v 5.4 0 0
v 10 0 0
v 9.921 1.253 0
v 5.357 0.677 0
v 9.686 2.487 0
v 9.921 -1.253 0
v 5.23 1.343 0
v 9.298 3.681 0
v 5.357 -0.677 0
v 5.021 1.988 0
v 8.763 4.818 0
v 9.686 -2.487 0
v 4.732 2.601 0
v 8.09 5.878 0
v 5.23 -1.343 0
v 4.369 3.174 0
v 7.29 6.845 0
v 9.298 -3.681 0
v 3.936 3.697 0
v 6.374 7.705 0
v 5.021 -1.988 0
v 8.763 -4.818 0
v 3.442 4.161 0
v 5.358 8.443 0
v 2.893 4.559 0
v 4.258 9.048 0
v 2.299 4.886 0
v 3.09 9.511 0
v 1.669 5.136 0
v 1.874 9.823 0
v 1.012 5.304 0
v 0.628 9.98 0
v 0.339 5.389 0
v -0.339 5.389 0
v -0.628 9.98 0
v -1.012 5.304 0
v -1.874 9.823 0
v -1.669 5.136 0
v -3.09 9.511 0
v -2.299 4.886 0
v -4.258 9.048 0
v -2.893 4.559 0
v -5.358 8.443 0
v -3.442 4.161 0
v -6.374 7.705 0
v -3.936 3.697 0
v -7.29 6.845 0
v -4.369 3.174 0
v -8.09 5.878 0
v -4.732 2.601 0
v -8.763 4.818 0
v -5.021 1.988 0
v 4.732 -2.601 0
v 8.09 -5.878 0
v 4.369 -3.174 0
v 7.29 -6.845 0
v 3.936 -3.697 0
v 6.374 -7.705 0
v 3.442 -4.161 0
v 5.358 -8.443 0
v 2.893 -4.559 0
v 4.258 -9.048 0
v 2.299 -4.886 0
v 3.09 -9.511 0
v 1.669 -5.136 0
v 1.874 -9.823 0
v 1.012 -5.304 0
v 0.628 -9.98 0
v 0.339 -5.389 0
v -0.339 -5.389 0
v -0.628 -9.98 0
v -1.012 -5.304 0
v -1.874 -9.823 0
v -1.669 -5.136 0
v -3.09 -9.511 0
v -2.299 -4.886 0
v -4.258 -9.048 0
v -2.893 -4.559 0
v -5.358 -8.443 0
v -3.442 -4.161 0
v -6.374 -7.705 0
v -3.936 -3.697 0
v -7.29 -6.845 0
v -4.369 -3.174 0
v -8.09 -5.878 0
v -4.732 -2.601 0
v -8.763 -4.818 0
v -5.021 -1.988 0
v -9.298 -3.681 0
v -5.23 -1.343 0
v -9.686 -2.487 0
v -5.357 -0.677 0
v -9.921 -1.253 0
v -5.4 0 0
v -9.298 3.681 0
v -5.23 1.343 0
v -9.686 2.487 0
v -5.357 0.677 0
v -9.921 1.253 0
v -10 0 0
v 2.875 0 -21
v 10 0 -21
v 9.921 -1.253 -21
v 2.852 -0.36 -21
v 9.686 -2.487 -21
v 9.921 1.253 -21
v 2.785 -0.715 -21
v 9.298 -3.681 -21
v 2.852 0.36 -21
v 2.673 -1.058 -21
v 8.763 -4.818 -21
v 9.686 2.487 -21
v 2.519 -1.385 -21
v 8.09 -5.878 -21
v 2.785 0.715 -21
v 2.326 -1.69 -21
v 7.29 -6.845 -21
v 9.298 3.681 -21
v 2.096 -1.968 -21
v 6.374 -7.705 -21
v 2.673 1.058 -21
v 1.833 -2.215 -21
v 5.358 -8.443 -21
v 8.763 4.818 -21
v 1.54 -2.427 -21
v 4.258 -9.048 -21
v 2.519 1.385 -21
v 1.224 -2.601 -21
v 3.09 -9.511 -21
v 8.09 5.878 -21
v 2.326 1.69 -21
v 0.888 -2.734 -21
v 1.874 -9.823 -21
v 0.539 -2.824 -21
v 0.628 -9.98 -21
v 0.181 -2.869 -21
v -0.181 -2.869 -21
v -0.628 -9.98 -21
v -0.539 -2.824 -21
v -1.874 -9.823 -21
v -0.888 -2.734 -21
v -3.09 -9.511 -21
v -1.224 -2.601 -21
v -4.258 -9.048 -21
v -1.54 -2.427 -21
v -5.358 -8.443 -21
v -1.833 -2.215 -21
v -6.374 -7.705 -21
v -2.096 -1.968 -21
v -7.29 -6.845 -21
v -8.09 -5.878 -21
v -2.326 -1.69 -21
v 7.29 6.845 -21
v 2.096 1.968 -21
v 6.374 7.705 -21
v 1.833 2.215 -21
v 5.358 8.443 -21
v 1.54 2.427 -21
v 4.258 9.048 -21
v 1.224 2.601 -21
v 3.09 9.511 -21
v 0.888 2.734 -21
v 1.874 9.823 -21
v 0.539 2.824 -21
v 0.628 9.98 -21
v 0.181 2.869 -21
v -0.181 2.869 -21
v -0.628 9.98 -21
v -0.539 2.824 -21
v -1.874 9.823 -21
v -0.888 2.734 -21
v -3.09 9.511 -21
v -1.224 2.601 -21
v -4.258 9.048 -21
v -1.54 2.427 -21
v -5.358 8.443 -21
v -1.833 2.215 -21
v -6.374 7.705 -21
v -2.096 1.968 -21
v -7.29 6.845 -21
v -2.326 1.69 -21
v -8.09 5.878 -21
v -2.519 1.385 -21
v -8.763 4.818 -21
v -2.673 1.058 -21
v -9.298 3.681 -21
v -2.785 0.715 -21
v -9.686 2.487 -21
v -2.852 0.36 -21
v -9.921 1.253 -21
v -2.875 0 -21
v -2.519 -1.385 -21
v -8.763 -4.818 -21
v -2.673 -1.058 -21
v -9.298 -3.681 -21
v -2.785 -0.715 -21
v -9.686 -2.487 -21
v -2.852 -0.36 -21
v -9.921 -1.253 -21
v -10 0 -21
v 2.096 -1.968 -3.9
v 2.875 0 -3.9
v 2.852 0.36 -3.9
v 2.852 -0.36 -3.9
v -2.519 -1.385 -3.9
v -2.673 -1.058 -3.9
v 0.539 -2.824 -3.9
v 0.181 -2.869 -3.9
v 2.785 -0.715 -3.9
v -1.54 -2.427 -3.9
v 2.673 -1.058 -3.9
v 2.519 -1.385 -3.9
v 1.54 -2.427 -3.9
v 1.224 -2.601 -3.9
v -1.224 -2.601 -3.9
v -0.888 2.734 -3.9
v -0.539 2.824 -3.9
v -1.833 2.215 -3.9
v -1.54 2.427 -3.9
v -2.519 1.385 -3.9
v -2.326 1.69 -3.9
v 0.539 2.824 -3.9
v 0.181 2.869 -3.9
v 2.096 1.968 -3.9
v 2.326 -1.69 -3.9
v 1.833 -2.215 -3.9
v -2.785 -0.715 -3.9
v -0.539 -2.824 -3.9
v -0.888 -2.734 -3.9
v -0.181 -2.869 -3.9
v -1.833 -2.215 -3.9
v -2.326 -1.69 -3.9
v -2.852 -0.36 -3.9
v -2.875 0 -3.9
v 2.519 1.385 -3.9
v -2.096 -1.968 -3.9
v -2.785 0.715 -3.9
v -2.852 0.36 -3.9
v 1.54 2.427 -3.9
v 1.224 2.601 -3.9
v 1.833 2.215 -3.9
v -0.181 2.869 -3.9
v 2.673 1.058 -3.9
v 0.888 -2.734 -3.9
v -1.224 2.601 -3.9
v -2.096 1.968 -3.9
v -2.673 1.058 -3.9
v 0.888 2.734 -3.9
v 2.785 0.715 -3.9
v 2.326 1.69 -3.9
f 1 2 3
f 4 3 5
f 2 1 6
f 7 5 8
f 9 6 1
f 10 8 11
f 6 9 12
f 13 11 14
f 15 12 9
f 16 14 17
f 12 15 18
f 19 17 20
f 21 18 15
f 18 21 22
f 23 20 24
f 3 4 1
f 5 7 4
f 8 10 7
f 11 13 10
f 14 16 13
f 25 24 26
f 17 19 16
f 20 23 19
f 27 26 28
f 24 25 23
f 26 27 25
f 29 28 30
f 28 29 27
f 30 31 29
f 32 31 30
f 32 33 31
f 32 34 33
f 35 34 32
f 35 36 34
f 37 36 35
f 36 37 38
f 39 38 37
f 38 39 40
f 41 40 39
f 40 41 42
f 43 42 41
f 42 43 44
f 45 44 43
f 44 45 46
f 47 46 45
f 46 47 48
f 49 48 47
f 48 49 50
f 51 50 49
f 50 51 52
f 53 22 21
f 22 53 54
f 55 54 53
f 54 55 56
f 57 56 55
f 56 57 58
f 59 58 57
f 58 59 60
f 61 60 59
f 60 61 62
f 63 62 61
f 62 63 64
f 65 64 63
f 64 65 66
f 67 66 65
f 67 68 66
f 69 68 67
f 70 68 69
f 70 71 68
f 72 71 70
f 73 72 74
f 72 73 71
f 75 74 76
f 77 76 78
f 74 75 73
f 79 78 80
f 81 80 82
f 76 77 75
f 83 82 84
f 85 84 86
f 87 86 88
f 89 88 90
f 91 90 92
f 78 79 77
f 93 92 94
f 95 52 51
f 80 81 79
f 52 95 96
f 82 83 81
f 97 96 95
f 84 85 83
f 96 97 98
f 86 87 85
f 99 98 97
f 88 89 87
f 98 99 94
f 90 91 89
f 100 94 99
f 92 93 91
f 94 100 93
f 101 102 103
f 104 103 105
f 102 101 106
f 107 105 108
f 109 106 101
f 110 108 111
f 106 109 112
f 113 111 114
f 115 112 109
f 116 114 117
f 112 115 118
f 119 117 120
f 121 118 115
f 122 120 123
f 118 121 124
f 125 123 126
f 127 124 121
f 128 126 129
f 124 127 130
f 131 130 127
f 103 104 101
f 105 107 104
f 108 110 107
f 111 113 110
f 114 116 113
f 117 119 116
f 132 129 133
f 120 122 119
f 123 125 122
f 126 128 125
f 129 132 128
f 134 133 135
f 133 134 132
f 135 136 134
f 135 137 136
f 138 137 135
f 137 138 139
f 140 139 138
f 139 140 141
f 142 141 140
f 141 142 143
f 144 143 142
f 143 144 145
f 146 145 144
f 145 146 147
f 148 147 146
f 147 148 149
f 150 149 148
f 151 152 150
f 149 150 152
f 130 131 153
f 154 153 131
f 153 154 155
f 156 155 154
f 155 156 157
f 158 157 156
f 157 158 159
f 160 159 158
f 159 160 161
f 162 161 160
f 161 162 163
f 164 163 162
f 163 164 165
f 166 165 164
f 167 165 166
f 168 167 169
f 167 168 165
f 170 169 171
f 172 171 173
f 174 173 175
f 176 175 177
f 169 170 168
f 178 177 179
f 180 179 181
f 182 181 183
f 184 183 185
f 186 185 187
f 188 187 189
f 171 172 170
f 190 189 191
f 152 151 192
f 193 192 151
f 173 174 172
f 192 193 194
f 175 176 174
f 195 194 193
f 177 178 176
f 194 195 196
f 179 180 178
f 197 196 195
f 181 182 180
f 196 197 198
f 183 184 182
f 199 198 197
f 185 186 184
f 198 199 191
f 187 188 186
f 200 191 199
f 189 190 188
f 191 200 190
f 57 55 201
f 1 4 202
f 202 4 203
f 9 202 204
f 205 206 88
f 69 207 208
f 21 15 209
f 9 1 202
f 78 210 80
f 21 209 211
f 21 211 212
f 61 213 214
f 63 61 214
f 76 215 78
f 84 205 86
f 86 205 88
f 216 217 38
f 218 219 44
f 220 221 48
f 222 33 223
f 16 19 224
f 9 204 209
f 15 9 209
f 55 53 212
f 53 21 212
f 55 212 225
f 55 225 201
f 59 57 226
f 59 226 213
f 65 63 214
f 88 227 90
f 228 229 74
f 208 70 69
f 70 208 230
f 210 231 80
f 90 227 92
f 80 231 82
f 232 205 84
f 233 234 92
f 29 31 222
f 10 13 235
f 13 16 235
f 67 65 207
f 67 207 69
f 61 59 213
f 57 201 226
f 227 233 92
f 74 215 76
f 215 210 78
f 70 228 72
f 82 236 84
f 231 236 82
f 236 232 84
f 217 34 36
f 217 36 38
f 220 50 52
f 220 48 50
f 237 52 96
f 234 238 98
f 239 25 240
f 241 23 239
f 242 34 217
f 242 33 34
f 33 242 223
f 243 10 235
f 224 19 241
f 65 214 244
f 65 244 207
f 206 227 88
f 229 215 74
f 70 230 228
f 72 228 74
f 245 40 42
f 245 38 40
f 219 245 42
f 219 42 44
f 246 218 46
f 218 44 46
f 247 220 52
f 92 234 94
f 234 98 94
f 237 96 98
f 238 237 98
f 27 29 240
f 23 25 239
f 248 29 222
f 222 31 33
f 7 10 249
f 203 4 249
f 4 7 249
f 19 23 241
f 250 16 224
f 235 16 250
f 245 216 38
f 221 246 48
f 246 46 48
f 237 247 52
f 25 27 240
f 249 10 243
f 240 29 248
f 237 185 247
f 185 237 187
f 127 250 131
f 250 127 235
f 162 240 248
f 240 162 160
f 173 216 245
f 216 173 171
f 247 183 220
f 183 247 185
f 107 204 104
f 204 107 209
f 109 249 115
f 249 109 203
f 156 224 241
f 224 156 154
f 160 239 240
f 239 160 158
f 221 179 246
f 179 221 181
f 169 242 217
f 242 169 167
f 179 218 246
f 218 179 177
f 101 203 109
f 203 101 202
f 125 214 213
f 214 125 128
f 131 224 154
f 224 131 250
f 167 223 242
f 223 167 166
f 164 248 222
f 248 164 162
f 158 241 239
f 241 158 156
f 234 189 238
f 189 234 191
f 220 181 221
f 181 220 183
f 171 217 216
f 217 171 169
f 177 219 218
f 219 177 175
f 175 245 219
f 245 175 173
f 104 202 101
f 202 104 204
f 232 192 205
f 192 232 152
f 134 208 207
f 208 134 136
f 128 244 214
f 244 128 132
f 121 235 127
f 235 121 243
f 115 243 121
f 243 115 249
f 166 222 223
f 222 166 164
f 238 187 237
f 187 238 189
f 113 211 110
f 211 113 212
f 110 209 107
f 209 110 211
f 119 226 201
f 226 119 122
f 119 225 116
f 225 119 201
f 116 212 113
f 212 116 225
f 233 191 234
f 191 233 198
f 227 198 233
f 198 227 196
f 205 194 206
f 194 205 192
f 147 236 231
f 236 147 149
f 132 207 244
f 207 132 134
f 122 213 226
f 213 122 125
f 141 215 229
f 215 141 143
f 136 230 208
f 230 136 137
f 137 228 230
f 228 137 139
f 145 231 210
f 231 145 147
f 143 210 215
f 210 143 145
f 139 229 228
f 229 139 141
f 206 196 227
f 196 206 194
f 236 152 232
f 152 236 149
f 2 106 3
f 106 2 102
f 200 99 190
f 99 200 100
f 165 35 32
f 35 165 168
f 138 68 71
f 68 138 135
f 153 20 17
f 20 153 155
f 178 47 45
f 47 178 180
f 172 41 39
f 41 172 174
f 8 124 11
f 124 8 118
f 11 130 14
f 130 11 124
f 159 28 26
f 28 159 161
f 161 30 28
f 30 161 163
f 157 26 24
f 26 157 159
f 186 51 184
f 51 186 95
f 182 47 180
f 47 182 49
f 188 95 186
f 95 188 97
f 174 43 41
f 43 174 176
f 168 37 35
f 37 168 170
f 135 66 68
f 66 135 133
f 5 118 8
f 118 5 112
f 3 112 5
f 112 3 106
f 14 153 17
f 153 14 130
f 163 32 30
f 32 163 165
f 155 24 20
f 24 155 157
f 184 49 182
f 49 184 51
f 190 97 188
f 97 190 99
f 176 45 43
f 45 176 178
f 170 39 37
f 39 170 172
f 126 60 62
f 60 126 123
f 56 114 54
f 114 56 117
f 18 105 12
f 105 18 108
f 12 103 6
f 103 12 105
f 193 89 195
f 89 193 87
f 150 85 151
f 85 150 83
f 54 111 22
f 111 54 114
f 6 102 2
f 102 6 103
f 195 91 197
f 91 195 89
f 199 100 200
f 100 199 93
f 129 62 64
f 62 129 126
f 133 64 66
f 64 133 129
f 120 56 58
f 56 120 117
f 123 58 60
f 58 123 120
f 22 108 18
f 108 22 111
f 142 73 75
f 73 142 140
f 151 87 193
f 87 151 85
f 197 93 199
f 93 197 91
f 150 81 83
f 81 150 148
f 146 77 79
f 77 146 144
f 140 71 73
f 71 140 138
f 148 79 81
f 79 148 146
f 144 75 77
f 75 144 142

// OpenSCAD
$fn = 50;


difference() {
	union() {
		translate(v = [0, 0, -21.0000000000]) {
			cylinder(h = 21, r = 10.0000000000);
		}
	}
	union() {
		translate(v = [0, 0, 0]) {
			rotate(a = [0, 0, 0]) {
				difference() {
					union() {
						#translate(v = [0, 0, -21.0000000000]) {
							cylinder(h = 21, r = 2.6000000000);
						}
						#translate(v = [0, 0, -3.9000000000]) {
							cylinder(h = 3.9000000000, r = 10.0000000000, r1 = 2.8750000000, r2 = 5.4000000000);
						}
						#translate(v = [0, 0, -21.0000000000]) {
							cylinder(h = 21, r = 2.8750000000);
						}
						#translate(v = [0, 0, -21.0000000000]) {
							cylinder(h = 21, r = 2.6000000000);
						}
					}
					union();
				}
			}
		}
	}
}
